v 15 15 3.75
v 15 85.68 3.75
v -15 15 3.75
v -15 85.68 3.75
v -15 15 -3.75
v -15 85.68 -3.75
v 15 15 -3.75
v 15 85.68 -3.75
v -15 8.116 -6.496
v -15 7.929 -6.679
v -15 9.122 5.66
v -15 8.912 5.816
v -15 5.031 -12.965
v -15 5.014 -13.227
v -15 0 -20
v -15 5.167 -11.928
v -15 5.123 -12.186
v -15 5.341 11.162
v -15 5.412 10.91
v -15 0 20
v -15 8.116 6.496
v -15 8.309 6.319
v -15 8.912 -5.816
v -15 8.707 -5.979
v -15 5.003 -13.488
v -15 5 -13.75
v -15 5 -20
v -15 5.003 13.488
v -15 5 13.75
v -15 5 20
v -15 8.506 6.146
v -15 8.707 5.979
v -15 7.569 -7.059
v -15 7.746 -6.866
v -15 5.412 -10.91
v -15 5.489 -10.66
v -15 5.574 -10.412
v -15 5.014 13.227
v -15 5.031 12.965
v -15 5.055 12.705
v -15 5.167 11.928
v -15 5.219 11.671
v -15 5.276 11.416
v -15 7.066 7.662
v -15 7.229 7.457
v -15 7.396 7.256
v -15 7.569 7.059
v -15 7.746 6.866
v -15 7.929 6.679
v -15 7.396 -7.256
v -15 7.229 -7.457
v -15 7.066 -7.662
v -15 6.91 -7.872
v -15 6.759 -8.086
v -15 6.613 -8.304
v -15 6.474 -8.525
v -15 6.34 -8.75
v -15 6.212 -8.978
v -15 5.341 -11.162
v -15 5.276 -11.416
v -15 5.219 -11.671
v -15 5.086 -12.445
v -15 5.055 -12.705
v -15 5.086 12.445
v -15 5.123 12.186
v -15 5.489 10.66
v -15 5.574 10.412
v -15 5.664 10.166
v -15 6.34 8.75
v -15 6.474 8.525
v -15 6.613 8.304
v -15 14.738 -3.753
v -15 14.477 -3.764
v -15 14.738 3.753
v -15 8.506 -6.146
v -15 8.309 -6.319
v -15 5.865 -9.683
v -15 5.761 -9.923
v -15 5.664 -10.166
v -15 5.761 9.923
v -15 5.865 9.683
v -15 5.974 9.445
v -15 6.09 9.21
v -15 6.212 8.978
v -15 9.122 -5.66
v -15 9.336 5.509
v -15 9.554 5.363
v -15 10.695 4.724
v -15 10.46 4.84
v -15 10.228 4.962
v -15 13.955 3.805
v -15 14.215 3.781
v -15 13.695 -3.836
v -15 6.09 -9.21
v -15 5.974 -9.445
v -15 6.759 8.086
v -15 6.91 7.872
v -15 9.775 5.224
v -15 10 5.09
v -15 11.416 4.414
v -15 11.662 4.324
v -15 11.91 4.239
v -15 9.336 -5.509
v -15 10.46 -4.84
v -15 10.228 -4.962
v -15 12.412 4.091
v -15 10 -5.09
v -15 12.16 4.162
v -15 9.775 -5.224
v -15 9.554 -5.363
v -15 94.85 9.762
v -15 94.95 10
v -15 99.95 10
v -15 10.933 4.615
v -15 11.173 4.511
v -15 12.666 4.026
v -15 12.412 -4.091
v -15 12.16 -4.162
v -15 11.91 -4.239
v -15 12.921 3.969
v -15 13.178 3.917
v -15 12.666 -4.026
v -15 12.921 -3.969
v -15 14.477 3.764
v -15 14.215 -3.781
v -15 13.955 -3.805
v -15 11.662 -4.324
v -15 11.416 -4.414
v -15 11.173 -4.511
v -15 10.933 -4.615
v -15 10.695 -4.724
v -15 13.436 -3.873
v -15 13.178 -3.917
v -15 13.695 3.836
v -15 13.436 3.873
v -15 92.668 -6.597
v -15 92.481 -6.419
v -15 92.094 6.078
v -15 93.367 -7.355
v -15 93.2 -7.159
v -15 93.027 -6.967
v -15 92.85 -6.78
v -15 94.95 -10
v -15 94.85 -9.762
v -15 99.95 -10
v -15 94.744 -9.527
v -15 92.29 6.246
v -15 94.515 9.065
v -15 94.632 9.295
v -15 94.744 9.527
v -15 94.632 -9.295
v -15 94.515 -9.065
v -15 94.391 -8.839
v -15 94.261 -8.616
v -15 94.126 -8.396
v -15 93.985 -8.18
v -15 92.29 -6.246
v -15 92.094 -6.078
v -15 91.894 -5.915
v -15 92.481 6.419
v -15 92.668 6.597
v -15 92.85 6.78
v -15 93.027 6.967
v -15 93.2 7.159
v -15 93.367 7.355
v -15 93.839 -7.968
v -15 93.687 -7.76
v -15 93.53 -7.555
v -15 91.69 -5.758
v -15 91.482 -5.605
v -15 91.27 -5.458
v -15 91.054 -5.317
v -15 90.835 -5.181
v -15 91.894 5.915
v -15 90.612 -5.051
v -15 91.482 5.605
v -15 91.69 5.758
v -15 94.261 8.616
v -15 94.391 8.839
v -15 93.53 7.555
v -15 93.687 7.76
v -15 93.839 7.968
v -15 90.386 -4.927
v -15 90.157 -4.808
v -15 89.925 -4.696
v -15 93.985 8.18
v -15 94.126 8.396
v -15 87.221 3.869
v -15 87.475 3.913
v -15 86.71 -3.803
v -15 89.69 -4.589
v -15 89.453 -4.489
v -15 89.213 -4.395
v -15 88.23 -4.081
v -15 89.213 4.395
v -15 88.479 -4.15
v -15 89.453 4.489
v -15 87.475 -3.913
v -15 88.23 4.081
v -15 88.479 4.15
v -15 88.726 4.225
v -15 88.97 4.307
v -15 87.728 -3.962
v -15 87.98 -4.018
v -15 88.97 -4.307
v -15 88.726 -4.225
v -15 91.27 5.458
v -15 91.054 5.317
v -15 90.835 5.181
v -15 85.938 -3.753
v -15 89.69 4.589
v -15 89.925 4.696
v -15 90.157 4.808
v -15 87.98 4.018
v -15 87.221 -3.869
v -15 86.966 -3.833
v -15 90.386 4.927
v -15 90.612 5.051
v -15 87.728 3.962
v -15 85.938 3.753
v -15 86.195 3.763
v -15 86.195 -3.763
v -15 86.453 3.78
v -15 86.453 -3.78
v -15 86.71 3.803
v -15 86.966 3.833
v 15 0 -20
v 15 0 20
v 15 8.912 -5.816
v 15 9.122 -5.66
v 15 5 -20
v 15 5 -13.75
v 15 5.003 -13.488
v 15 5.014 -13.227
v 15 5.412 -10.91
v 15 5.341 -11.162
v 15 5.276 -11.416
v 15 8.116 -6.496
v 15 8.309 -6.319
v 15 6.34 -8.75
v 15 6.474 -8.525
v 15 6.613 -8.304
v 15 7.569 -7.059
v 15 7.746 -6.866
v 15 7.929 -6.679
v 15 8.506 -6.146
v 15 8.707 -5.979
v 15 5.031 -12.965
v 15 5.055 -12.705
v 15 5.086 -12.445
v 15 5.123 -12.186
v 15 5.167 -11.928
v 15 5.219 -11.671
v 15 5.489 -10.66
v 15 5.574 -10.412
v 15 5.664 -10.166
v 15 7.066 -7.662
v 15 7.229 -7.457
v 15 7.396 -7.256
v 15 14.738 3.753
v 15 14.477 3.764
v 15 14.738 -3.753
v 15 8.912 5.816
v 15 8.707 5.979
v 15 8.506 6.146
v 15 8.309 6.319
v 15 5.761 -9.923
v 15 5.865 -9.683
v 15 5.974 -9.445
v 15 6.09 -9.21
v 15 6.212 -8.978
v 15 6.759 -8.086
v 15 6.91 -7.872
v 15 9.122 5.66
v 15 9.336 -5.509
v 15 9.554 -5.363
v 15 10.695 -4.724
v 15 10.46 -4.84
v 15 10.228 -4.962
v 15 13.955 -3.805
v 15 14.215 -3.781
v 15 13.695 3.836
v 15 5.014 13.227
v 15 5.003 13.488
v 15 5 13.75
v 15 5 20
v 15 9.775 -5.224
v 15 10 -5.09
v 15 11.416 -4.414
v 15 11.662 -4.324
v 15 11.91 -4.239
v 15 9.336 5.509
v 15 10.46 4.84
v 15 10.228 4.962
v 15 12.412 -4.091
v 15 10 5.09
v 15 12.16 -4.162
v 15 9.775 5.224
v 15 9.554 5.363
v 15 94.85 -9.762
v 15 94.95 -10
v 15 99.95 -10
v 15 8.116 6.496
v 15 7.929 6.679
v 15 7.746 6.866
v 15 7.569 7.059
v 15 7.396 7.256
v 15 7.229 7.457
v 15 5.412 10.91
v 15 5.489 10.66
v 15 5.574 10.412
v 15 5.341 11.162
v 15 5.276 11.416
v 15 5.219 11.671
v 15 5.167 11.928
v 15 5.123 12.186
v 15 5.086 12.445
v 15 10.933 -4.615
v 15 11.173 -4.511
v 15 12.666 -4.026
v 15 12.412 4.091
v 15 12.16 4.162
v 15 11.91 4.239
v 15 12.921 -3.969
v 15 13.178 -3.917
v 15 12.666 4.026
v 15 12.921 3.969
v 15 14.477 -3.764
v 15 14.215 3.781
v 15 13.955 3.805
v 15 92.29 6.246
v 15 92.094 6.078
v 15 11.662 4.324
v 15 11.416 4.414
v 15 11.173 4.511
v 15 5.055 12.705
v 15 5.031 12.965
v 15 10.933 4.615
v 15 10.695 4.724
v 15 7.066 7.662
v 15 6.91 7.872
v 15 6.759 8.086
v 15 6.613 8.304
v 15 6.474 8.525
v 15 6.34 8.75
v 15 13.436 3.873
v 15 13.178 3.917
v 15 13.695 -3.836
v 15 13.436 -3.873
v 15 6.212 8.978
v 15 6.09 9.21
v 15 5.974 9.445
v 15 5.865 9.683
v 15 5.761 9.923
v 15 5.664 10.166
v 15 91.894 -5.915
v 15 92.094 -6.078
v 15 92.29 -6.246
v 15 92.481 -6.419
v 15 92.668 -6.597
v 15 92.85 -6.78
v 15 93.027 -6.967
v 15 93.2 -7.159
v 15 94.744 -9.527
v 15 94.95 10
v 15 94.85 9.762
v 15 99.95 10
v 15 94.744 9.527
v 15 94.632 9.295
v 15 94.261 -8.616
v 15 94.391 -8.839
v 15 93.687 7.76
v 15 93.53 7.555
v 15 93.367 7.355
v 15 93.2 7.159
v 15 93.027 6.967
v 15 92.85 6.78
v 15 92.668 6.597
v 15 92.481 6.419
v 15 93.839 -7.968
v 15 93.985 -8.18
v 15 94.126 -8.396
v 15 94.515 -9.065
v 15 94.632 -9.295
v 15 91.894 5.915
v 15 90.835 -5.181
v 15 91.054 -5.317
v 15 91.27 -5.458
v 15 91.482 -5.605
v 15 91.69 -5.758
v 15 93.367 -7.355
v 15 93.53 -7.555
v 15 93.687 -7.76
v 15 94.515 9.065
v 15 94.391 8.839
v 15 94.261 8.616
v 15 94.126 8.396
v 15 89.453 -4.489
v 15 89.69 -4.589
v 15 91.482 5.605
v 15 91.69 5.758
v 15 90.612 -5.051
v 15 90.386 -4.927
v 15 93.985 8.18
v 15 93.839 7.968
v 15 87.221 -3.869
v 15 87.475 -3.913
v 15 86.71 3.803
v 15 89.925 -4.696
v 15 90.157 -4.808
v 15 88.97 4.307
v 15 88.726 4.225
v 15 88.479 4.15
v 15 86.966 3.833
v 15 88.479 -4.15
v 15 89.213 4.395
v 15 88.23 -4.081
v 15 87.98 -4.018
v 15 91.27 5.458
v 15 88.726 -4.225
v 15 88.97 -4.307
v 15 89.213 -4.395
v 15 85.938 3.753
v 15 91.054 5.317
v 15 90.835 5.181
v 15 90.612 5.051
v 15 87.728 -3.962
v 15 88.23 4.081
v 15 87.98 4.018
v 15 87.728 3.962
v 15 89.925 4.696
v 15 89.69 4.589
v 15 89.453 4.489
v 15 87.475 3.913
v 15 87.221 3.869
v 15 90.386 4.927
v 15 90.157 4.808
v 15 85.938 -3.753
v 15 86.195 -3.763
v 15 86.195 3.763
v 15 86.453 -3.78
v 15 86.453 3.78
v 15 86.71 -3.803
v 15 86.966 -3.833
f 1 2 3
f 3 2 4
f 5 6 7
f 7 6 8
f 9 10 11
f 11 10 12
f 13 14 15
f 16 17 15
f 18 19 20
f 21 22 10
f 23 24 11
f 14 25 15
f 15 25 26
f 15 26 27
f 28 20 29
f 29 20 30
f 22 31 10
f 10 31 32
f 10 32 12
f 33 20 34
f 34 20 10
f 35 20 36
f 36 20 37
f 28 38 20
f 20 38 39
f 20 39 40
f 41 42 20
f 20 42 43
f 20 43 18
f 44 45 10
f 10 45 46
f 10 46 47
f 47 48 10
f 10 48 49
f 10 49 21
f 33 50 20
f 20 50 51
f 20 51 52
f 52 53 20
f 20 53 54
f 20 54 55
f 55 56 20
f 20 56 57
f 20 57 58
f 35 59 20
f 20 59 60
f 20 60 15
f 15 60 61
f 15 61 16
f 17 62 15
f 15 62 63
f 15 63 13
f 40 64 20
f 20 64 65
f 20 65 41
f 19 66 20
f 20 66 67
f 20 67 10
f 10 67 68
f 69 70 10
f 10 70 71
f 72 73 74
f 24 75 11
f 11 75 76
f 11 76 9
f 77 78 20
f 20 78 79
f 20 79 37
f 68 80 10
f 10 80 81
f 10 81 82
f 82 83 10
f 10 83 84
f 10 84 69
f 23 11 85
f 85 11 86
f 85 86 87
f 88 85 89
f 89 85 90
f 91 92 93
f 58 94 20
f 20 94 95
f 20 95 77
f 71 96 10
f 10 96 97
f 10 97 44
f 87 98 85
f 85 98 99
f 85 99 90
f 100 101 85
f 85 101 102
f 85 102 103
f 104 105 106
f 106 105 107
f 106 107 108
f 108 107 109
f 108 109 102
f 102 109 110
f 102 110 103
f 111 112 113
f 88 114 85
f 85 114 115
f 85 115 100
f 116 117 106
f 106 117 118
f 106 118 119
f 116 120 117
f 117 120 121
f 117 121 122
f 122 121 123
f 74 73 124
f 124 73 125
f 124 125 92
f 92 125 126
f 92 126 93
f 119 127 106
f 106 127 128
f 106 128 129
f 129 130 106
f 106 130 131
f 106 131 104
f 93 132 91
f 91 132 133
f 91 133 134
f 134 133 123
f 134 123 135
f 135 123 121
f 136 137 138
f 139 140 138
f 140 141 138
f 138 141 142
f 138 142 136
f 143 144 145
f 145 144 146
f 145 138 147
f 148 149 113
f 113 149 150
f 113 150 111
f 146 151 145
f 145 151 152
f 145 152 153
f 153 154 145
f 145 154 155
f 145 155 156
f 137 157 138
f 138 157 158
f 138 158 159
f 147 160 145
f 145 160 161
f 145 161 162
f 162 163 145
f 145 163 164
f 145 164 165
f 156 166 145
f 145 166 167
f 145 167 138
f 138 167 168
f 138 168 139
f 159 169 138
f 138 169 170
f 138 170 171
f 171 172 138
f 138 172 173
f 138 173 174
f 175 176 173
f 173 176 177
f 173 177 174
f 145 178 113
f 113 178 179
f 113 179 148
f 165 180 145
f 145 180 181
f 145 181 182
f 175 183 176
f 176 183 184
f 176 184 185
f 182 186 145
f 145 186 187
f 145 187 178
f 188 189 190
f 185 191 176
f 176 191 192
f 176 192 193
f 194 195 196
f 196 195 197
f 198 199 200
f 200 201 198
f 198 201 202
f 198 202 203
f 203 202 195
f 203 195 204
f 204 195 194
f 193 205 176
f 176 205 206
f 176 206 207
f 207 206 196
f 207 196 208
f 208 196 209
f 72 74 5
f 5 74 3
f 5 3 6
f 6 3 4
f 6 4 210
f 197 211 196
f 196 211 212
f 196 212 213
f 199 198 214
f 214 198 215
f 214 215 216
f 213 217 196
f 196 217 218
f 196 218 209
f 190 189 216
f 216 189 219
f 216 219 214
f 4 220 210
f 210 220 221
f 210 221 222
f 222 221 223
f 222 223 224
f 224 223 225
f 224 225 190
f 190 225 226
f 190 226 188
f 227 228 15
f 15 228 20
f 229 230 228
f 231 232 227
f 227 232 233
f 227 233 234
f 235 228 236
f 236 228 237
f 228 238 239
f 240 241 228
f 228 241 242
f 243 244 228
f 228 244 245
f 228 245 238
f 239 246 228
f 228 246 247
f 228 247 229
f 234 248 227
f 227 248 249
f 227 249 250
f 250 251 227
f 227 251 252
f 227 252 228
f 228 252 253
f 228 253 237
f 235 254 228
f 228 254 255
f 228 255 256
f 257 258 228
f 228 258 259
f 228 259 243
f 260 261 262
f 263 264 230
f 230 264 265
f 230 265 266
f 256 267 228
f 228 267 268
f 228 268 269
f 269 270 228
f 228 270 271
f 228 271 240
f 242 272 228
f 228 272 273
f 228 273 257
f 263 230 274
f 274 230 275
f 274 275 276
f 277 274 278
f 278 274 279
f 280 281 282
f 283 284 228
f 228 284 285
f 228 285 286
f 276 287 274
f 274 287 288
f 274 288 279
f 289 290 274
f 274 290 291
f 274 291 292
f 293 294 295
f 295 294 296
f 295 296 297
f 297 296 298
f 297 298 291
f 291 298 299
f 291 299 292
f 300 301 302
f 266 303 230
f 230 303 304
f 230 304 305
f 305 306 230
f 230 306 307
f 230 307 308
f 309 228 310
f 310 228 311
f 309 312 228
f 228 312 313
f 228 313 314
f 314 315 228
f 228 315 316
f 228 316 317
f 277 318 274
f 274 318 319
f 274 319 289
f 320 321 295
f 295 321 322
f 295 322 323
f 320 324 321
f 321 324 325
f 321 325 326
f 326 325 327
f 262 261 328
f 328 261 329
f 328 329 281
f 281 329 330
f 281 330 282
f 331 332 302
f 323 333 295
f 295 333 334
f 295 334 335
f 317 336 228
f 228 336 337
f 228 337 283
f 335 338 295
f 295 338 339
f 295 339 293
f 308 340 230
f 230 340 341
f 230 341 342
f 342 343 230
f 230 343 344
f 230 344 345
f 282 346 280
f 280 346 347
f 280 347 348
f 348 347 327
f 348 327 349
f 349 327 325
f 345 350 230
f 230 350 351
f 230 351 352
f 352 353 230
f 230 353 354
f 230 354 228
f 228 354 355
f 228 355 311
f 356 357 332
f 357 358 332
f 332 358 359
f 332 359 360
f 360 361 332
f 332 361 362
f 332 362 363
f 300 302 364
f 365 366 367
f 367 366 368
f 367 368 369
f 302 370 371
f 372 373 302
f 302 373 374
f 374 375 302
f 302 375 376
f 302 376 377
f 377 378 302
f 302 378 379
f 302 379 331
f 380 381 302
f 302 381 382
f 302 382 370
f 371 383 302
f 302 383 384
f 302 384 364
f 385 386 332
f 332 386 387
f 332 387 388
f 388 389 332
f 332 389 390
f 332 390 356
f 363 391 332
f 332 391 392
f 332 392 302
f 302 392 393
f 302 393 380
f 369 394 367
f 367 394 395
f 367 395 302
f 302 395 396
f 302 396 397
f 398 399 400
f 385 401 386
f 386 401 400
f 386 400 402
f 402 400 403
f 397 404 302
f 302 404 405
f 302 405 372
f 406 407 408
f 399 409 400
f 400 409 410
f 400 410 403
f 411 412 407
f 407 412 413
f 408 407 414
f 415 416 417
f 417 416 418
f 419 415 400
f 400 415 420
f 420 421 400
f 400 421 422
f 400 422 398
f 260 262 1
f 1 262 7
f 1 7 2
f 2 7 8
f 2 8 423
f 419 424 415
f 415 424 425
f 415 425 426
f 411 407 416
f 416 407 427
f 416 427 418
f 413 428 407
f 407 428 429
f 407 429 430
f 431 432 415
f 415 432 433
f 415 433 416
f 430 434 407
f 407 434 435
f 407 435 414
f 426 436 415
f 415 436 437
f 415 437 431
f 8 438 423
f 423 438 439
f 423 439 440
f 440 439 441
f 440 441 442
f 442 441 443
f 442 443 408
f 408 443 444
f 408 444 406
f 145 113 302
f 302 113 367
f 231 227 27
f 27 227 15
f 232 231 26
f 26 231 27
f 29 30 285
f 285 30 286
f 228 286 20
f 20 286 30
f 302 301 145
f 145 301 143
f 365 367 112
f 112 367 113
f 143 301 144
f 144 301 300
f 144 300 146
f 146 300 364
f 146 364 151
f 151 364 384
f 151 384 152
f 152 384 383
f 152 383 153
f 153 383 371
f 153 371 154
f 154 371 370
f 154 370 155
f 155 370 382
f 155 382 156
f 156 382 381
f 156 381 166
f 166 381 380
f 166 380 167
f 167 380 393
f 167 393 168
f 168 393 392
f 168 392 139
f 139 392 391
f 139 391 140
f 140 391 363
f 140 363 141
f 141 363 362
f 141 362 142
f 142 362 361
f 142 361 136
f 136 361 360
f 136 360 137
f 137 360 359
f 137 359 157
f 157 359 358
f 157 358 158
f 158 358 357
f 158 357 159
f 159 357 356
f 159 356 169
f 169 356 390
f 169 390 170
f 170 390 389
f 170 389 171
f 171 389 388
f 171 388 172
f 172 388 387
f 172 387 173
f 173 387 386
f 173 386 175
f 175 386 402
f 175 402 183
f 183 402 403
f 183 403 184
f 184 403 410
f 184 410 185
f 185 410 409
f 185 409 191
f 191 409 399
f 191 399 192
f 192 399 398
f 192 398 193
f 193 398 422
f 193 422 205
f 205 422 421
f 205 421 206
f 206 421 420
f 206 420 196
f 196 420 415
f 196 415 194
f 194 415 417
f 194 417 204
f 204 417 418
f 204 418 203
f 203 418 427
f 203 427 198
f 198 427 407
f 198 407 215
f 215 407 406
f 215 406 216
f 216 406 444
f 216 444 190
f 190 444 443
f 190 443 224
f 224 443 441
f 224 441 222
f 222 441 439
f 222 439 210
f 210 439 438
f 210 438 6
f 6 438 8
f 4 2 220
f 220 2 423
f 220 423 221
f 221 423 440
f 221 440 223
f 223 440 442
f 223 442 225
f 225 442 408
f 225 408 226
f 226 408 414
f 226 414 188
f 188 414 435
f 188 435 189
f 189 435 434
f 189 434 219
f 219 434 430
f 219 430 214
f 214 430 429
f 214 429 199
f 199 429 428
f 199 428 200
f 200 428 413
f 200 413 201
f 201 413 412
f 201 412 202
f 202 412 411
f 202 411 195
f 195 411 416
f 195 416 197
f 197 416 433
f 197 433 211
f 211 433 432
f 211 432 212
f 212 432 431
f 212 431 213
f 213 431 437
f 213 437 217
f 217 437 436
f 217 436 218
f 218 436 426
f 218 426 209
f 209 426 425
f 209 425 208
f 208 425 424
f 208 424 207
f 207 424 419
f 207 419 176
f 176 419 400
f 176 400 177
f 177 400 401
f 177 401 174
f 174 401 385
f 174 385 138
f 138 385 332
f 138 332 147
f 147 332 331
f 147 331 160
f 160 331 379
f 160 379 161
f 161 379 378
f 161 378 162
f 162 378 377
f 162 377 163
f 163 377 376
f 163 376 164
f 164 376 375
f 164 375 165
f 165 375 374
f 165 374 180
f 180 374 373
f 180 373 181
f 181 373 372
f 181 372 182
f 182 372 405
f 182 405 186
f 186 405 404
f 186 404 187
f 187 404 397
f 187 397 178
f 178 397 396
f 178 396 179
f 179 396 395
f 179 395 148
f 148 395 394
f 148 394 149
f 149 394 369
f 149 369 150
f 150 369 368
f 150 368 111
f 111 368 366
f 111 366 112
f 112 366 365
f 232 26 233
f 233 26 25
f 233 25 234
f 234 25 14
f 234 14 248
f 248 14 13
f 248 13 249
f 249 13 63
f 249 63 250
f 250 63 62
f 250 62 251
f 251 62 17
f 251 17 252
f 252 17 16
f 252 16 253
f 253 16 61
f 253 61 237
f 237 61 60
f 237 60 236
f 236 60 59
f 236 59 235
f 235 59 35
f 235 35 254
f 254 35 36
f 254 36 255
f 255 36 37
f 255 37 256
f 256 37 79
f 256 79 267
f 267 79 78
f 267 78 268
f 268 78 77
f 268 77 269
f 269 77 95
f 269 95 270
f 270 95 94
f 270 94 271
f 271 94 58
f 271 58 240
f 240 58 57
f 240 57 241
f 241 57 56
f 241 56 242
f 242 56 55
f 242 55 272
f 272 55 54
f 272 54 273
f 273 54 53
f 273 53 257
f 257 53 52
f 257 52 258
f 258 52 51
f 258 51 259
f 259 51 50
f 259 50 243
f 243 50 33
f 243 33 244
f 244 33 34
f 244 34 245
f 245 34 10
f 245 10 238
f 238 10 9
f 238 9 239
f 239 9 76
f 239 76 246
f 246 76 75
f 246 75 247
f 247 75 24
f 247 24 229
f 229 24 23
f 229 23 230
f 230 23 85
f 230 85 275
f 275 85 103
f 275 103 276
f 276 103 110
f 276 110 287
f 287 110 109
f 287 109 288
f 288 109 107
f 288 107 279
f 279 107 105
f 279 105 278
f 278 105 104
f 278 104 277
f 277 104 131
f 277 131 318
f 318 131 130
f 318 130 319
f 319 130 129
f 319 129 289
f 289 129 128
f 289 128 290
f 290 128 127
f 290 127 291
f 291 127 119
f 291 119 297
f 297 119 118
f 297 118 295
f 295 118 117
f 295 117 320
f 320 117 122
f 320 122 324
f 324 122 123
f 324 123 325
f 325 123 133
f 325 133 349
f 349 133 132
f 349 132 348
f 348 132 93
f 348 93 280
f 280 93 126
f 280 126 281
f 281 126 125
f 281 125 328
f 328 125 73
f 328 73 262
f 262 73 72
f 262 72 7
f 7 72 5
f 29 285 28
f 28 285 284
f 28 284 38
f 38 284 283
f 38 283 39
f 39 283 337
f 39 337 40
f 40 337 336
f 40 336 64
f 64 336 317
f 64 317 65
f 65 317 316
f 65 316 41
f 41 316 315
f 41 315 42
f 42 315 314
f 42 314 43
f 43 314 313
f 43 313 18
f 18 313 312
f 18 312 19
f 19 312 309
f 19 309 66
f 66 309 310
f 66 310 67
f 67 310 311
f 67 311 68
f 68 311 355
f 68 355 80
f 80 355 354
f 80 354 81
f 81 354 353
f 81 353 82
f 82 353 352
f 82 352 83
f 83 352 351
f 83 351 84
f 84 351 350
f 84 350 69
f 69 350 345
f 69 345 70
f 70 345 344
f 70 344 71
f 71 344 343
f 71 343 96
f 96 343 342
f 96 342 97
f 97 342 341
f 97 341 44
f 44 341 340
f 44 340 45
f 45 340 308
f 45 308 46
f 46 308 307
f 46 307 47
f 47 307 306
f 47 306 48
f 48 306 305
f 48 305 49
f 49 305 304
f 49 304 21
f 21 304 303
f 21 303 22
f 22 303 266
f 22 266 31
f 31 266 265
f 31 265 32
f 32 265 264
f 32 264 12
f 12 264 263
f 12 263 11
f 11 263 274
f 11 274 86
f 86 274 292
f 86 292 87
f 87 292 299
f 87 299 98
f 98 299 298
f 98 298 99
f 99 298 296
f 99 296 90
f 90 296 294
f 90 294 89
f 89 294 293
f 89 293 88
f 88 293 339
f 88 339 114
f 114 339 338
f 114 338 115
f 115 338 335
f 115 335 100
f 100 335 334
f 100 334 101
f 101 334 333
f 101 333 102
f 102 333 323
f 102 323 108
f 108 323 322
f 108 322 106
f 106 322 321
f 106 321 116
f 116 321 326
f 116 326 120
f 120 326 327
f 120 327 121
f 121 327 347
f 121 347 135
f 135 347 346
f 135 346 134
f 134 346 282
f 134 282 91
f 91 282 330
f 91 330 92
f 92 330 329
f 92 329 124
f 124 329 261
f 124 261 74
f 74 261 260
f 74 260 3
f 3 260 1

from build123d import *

# Parameters (mm, degrees)
SKETCH1_W           = 30
SKETCH1_H           = 99.95
BOSS_EXTRUDE1_DEPTH = 3.75
SKETCH2_W           = 30
SKETCH2_H           = 5
BOSS_EXTRUDE2_DEPTH = 20
SKETCH3_W           = 30
SKETCH3_H           = 5
BOSS_EXTRUDE3_DEPTH = 10
FILLET1_R           = 10
FILLET2_R           = 10


with BuildPart() as part:
    # Sketch1 → Boss-Extrude1 (new, symmetric)
    with BuildSketch(Plane.XY):
        with Locations((0, 49.975)):
            Rectangle(SKETCH1_W, SKETCH1_H)
    extrude(amount=BOSS_EXTRUDE1_DEPTH, both=True)

    # Sketch2 → Boss-Extrude2 (add, symmetric)
    with BuildSketch(Plane.XY):
        with Locations((0, 2.5)):
            Rectangle(SKETCH2_W, SKETCH2_H)
    extrude(amount=BOSS_EXTRUDE2_DEPTH, both=True)

    # Sketch3 → Boss-Extrude3 (add, symmetric)
    with BuildSketch(Plane.XY):
        with Locations((0, 97.45)):
            Rectangle(SKETCH3_W, SKETCH3_H)
    extrude(amount=BOSS_EXTRUDE3_DEPTH, both=True)

    # Fillet1
    # the kernel refuses this fillet: 10 mm, written as the material it adds along each edge
    with BuildSketch(Plane(origin=(15, 94.95, -3.75), x_dir=(0, 0, -1), z_dir=(-1, 0, 0))) as fillet1_piece_1:
        with BuildLine():
            CenterArc((10, 9.270248109), FILLET1_R, 180, 67.975687163)
            Line((0, 9.270248109), (-0.2, 9.270248109))
            Line((-0.2, 9.270248109), (-0.2, 0))
            Line((-0.2, 0), (0, -0.2))
            ThreePointArc((0, -0.2), (3.125, -0.2), (6.175, -0.185404962))
            Line((6.175, -0.185404962), (6.25, 0))
        make_face()
    extrude(amount=30)
    with BuildSketch(Plane(origin=(15, 94.95, 3.75), x_dir=(0, -1, 0), z_dir=(-1, 0, 0))) as fillet1_piece_2:
        with BuildLine():
            CenterArc((9.270248109, 10), FILLET1_R, 202.024312837, 67.975687163)
            Line((0, 6.25), (-0.185404962, 6.175))
            ThreePointArc((-0.185404962, 6.175), (-0.2, 3.125), (-0.2, 0))
            Line((-0.2, 0), (0, -0.2))
            Line((0, -0.2), (9.270248109, -0.2))
            Line((9.270248109, -0.2), (9.270248109, 0))
        make_face()
    extrude(amount=30)

    # Fillet2
    fillet2_edges = [part.edges().sort_by_distance(p)[0] for p in [
        (0, 5, -3.75),
        (0, 5, 3.75),
    ]]
    fillet(fillet2_edges, radius=FILLET2_R)


solid = part.part
